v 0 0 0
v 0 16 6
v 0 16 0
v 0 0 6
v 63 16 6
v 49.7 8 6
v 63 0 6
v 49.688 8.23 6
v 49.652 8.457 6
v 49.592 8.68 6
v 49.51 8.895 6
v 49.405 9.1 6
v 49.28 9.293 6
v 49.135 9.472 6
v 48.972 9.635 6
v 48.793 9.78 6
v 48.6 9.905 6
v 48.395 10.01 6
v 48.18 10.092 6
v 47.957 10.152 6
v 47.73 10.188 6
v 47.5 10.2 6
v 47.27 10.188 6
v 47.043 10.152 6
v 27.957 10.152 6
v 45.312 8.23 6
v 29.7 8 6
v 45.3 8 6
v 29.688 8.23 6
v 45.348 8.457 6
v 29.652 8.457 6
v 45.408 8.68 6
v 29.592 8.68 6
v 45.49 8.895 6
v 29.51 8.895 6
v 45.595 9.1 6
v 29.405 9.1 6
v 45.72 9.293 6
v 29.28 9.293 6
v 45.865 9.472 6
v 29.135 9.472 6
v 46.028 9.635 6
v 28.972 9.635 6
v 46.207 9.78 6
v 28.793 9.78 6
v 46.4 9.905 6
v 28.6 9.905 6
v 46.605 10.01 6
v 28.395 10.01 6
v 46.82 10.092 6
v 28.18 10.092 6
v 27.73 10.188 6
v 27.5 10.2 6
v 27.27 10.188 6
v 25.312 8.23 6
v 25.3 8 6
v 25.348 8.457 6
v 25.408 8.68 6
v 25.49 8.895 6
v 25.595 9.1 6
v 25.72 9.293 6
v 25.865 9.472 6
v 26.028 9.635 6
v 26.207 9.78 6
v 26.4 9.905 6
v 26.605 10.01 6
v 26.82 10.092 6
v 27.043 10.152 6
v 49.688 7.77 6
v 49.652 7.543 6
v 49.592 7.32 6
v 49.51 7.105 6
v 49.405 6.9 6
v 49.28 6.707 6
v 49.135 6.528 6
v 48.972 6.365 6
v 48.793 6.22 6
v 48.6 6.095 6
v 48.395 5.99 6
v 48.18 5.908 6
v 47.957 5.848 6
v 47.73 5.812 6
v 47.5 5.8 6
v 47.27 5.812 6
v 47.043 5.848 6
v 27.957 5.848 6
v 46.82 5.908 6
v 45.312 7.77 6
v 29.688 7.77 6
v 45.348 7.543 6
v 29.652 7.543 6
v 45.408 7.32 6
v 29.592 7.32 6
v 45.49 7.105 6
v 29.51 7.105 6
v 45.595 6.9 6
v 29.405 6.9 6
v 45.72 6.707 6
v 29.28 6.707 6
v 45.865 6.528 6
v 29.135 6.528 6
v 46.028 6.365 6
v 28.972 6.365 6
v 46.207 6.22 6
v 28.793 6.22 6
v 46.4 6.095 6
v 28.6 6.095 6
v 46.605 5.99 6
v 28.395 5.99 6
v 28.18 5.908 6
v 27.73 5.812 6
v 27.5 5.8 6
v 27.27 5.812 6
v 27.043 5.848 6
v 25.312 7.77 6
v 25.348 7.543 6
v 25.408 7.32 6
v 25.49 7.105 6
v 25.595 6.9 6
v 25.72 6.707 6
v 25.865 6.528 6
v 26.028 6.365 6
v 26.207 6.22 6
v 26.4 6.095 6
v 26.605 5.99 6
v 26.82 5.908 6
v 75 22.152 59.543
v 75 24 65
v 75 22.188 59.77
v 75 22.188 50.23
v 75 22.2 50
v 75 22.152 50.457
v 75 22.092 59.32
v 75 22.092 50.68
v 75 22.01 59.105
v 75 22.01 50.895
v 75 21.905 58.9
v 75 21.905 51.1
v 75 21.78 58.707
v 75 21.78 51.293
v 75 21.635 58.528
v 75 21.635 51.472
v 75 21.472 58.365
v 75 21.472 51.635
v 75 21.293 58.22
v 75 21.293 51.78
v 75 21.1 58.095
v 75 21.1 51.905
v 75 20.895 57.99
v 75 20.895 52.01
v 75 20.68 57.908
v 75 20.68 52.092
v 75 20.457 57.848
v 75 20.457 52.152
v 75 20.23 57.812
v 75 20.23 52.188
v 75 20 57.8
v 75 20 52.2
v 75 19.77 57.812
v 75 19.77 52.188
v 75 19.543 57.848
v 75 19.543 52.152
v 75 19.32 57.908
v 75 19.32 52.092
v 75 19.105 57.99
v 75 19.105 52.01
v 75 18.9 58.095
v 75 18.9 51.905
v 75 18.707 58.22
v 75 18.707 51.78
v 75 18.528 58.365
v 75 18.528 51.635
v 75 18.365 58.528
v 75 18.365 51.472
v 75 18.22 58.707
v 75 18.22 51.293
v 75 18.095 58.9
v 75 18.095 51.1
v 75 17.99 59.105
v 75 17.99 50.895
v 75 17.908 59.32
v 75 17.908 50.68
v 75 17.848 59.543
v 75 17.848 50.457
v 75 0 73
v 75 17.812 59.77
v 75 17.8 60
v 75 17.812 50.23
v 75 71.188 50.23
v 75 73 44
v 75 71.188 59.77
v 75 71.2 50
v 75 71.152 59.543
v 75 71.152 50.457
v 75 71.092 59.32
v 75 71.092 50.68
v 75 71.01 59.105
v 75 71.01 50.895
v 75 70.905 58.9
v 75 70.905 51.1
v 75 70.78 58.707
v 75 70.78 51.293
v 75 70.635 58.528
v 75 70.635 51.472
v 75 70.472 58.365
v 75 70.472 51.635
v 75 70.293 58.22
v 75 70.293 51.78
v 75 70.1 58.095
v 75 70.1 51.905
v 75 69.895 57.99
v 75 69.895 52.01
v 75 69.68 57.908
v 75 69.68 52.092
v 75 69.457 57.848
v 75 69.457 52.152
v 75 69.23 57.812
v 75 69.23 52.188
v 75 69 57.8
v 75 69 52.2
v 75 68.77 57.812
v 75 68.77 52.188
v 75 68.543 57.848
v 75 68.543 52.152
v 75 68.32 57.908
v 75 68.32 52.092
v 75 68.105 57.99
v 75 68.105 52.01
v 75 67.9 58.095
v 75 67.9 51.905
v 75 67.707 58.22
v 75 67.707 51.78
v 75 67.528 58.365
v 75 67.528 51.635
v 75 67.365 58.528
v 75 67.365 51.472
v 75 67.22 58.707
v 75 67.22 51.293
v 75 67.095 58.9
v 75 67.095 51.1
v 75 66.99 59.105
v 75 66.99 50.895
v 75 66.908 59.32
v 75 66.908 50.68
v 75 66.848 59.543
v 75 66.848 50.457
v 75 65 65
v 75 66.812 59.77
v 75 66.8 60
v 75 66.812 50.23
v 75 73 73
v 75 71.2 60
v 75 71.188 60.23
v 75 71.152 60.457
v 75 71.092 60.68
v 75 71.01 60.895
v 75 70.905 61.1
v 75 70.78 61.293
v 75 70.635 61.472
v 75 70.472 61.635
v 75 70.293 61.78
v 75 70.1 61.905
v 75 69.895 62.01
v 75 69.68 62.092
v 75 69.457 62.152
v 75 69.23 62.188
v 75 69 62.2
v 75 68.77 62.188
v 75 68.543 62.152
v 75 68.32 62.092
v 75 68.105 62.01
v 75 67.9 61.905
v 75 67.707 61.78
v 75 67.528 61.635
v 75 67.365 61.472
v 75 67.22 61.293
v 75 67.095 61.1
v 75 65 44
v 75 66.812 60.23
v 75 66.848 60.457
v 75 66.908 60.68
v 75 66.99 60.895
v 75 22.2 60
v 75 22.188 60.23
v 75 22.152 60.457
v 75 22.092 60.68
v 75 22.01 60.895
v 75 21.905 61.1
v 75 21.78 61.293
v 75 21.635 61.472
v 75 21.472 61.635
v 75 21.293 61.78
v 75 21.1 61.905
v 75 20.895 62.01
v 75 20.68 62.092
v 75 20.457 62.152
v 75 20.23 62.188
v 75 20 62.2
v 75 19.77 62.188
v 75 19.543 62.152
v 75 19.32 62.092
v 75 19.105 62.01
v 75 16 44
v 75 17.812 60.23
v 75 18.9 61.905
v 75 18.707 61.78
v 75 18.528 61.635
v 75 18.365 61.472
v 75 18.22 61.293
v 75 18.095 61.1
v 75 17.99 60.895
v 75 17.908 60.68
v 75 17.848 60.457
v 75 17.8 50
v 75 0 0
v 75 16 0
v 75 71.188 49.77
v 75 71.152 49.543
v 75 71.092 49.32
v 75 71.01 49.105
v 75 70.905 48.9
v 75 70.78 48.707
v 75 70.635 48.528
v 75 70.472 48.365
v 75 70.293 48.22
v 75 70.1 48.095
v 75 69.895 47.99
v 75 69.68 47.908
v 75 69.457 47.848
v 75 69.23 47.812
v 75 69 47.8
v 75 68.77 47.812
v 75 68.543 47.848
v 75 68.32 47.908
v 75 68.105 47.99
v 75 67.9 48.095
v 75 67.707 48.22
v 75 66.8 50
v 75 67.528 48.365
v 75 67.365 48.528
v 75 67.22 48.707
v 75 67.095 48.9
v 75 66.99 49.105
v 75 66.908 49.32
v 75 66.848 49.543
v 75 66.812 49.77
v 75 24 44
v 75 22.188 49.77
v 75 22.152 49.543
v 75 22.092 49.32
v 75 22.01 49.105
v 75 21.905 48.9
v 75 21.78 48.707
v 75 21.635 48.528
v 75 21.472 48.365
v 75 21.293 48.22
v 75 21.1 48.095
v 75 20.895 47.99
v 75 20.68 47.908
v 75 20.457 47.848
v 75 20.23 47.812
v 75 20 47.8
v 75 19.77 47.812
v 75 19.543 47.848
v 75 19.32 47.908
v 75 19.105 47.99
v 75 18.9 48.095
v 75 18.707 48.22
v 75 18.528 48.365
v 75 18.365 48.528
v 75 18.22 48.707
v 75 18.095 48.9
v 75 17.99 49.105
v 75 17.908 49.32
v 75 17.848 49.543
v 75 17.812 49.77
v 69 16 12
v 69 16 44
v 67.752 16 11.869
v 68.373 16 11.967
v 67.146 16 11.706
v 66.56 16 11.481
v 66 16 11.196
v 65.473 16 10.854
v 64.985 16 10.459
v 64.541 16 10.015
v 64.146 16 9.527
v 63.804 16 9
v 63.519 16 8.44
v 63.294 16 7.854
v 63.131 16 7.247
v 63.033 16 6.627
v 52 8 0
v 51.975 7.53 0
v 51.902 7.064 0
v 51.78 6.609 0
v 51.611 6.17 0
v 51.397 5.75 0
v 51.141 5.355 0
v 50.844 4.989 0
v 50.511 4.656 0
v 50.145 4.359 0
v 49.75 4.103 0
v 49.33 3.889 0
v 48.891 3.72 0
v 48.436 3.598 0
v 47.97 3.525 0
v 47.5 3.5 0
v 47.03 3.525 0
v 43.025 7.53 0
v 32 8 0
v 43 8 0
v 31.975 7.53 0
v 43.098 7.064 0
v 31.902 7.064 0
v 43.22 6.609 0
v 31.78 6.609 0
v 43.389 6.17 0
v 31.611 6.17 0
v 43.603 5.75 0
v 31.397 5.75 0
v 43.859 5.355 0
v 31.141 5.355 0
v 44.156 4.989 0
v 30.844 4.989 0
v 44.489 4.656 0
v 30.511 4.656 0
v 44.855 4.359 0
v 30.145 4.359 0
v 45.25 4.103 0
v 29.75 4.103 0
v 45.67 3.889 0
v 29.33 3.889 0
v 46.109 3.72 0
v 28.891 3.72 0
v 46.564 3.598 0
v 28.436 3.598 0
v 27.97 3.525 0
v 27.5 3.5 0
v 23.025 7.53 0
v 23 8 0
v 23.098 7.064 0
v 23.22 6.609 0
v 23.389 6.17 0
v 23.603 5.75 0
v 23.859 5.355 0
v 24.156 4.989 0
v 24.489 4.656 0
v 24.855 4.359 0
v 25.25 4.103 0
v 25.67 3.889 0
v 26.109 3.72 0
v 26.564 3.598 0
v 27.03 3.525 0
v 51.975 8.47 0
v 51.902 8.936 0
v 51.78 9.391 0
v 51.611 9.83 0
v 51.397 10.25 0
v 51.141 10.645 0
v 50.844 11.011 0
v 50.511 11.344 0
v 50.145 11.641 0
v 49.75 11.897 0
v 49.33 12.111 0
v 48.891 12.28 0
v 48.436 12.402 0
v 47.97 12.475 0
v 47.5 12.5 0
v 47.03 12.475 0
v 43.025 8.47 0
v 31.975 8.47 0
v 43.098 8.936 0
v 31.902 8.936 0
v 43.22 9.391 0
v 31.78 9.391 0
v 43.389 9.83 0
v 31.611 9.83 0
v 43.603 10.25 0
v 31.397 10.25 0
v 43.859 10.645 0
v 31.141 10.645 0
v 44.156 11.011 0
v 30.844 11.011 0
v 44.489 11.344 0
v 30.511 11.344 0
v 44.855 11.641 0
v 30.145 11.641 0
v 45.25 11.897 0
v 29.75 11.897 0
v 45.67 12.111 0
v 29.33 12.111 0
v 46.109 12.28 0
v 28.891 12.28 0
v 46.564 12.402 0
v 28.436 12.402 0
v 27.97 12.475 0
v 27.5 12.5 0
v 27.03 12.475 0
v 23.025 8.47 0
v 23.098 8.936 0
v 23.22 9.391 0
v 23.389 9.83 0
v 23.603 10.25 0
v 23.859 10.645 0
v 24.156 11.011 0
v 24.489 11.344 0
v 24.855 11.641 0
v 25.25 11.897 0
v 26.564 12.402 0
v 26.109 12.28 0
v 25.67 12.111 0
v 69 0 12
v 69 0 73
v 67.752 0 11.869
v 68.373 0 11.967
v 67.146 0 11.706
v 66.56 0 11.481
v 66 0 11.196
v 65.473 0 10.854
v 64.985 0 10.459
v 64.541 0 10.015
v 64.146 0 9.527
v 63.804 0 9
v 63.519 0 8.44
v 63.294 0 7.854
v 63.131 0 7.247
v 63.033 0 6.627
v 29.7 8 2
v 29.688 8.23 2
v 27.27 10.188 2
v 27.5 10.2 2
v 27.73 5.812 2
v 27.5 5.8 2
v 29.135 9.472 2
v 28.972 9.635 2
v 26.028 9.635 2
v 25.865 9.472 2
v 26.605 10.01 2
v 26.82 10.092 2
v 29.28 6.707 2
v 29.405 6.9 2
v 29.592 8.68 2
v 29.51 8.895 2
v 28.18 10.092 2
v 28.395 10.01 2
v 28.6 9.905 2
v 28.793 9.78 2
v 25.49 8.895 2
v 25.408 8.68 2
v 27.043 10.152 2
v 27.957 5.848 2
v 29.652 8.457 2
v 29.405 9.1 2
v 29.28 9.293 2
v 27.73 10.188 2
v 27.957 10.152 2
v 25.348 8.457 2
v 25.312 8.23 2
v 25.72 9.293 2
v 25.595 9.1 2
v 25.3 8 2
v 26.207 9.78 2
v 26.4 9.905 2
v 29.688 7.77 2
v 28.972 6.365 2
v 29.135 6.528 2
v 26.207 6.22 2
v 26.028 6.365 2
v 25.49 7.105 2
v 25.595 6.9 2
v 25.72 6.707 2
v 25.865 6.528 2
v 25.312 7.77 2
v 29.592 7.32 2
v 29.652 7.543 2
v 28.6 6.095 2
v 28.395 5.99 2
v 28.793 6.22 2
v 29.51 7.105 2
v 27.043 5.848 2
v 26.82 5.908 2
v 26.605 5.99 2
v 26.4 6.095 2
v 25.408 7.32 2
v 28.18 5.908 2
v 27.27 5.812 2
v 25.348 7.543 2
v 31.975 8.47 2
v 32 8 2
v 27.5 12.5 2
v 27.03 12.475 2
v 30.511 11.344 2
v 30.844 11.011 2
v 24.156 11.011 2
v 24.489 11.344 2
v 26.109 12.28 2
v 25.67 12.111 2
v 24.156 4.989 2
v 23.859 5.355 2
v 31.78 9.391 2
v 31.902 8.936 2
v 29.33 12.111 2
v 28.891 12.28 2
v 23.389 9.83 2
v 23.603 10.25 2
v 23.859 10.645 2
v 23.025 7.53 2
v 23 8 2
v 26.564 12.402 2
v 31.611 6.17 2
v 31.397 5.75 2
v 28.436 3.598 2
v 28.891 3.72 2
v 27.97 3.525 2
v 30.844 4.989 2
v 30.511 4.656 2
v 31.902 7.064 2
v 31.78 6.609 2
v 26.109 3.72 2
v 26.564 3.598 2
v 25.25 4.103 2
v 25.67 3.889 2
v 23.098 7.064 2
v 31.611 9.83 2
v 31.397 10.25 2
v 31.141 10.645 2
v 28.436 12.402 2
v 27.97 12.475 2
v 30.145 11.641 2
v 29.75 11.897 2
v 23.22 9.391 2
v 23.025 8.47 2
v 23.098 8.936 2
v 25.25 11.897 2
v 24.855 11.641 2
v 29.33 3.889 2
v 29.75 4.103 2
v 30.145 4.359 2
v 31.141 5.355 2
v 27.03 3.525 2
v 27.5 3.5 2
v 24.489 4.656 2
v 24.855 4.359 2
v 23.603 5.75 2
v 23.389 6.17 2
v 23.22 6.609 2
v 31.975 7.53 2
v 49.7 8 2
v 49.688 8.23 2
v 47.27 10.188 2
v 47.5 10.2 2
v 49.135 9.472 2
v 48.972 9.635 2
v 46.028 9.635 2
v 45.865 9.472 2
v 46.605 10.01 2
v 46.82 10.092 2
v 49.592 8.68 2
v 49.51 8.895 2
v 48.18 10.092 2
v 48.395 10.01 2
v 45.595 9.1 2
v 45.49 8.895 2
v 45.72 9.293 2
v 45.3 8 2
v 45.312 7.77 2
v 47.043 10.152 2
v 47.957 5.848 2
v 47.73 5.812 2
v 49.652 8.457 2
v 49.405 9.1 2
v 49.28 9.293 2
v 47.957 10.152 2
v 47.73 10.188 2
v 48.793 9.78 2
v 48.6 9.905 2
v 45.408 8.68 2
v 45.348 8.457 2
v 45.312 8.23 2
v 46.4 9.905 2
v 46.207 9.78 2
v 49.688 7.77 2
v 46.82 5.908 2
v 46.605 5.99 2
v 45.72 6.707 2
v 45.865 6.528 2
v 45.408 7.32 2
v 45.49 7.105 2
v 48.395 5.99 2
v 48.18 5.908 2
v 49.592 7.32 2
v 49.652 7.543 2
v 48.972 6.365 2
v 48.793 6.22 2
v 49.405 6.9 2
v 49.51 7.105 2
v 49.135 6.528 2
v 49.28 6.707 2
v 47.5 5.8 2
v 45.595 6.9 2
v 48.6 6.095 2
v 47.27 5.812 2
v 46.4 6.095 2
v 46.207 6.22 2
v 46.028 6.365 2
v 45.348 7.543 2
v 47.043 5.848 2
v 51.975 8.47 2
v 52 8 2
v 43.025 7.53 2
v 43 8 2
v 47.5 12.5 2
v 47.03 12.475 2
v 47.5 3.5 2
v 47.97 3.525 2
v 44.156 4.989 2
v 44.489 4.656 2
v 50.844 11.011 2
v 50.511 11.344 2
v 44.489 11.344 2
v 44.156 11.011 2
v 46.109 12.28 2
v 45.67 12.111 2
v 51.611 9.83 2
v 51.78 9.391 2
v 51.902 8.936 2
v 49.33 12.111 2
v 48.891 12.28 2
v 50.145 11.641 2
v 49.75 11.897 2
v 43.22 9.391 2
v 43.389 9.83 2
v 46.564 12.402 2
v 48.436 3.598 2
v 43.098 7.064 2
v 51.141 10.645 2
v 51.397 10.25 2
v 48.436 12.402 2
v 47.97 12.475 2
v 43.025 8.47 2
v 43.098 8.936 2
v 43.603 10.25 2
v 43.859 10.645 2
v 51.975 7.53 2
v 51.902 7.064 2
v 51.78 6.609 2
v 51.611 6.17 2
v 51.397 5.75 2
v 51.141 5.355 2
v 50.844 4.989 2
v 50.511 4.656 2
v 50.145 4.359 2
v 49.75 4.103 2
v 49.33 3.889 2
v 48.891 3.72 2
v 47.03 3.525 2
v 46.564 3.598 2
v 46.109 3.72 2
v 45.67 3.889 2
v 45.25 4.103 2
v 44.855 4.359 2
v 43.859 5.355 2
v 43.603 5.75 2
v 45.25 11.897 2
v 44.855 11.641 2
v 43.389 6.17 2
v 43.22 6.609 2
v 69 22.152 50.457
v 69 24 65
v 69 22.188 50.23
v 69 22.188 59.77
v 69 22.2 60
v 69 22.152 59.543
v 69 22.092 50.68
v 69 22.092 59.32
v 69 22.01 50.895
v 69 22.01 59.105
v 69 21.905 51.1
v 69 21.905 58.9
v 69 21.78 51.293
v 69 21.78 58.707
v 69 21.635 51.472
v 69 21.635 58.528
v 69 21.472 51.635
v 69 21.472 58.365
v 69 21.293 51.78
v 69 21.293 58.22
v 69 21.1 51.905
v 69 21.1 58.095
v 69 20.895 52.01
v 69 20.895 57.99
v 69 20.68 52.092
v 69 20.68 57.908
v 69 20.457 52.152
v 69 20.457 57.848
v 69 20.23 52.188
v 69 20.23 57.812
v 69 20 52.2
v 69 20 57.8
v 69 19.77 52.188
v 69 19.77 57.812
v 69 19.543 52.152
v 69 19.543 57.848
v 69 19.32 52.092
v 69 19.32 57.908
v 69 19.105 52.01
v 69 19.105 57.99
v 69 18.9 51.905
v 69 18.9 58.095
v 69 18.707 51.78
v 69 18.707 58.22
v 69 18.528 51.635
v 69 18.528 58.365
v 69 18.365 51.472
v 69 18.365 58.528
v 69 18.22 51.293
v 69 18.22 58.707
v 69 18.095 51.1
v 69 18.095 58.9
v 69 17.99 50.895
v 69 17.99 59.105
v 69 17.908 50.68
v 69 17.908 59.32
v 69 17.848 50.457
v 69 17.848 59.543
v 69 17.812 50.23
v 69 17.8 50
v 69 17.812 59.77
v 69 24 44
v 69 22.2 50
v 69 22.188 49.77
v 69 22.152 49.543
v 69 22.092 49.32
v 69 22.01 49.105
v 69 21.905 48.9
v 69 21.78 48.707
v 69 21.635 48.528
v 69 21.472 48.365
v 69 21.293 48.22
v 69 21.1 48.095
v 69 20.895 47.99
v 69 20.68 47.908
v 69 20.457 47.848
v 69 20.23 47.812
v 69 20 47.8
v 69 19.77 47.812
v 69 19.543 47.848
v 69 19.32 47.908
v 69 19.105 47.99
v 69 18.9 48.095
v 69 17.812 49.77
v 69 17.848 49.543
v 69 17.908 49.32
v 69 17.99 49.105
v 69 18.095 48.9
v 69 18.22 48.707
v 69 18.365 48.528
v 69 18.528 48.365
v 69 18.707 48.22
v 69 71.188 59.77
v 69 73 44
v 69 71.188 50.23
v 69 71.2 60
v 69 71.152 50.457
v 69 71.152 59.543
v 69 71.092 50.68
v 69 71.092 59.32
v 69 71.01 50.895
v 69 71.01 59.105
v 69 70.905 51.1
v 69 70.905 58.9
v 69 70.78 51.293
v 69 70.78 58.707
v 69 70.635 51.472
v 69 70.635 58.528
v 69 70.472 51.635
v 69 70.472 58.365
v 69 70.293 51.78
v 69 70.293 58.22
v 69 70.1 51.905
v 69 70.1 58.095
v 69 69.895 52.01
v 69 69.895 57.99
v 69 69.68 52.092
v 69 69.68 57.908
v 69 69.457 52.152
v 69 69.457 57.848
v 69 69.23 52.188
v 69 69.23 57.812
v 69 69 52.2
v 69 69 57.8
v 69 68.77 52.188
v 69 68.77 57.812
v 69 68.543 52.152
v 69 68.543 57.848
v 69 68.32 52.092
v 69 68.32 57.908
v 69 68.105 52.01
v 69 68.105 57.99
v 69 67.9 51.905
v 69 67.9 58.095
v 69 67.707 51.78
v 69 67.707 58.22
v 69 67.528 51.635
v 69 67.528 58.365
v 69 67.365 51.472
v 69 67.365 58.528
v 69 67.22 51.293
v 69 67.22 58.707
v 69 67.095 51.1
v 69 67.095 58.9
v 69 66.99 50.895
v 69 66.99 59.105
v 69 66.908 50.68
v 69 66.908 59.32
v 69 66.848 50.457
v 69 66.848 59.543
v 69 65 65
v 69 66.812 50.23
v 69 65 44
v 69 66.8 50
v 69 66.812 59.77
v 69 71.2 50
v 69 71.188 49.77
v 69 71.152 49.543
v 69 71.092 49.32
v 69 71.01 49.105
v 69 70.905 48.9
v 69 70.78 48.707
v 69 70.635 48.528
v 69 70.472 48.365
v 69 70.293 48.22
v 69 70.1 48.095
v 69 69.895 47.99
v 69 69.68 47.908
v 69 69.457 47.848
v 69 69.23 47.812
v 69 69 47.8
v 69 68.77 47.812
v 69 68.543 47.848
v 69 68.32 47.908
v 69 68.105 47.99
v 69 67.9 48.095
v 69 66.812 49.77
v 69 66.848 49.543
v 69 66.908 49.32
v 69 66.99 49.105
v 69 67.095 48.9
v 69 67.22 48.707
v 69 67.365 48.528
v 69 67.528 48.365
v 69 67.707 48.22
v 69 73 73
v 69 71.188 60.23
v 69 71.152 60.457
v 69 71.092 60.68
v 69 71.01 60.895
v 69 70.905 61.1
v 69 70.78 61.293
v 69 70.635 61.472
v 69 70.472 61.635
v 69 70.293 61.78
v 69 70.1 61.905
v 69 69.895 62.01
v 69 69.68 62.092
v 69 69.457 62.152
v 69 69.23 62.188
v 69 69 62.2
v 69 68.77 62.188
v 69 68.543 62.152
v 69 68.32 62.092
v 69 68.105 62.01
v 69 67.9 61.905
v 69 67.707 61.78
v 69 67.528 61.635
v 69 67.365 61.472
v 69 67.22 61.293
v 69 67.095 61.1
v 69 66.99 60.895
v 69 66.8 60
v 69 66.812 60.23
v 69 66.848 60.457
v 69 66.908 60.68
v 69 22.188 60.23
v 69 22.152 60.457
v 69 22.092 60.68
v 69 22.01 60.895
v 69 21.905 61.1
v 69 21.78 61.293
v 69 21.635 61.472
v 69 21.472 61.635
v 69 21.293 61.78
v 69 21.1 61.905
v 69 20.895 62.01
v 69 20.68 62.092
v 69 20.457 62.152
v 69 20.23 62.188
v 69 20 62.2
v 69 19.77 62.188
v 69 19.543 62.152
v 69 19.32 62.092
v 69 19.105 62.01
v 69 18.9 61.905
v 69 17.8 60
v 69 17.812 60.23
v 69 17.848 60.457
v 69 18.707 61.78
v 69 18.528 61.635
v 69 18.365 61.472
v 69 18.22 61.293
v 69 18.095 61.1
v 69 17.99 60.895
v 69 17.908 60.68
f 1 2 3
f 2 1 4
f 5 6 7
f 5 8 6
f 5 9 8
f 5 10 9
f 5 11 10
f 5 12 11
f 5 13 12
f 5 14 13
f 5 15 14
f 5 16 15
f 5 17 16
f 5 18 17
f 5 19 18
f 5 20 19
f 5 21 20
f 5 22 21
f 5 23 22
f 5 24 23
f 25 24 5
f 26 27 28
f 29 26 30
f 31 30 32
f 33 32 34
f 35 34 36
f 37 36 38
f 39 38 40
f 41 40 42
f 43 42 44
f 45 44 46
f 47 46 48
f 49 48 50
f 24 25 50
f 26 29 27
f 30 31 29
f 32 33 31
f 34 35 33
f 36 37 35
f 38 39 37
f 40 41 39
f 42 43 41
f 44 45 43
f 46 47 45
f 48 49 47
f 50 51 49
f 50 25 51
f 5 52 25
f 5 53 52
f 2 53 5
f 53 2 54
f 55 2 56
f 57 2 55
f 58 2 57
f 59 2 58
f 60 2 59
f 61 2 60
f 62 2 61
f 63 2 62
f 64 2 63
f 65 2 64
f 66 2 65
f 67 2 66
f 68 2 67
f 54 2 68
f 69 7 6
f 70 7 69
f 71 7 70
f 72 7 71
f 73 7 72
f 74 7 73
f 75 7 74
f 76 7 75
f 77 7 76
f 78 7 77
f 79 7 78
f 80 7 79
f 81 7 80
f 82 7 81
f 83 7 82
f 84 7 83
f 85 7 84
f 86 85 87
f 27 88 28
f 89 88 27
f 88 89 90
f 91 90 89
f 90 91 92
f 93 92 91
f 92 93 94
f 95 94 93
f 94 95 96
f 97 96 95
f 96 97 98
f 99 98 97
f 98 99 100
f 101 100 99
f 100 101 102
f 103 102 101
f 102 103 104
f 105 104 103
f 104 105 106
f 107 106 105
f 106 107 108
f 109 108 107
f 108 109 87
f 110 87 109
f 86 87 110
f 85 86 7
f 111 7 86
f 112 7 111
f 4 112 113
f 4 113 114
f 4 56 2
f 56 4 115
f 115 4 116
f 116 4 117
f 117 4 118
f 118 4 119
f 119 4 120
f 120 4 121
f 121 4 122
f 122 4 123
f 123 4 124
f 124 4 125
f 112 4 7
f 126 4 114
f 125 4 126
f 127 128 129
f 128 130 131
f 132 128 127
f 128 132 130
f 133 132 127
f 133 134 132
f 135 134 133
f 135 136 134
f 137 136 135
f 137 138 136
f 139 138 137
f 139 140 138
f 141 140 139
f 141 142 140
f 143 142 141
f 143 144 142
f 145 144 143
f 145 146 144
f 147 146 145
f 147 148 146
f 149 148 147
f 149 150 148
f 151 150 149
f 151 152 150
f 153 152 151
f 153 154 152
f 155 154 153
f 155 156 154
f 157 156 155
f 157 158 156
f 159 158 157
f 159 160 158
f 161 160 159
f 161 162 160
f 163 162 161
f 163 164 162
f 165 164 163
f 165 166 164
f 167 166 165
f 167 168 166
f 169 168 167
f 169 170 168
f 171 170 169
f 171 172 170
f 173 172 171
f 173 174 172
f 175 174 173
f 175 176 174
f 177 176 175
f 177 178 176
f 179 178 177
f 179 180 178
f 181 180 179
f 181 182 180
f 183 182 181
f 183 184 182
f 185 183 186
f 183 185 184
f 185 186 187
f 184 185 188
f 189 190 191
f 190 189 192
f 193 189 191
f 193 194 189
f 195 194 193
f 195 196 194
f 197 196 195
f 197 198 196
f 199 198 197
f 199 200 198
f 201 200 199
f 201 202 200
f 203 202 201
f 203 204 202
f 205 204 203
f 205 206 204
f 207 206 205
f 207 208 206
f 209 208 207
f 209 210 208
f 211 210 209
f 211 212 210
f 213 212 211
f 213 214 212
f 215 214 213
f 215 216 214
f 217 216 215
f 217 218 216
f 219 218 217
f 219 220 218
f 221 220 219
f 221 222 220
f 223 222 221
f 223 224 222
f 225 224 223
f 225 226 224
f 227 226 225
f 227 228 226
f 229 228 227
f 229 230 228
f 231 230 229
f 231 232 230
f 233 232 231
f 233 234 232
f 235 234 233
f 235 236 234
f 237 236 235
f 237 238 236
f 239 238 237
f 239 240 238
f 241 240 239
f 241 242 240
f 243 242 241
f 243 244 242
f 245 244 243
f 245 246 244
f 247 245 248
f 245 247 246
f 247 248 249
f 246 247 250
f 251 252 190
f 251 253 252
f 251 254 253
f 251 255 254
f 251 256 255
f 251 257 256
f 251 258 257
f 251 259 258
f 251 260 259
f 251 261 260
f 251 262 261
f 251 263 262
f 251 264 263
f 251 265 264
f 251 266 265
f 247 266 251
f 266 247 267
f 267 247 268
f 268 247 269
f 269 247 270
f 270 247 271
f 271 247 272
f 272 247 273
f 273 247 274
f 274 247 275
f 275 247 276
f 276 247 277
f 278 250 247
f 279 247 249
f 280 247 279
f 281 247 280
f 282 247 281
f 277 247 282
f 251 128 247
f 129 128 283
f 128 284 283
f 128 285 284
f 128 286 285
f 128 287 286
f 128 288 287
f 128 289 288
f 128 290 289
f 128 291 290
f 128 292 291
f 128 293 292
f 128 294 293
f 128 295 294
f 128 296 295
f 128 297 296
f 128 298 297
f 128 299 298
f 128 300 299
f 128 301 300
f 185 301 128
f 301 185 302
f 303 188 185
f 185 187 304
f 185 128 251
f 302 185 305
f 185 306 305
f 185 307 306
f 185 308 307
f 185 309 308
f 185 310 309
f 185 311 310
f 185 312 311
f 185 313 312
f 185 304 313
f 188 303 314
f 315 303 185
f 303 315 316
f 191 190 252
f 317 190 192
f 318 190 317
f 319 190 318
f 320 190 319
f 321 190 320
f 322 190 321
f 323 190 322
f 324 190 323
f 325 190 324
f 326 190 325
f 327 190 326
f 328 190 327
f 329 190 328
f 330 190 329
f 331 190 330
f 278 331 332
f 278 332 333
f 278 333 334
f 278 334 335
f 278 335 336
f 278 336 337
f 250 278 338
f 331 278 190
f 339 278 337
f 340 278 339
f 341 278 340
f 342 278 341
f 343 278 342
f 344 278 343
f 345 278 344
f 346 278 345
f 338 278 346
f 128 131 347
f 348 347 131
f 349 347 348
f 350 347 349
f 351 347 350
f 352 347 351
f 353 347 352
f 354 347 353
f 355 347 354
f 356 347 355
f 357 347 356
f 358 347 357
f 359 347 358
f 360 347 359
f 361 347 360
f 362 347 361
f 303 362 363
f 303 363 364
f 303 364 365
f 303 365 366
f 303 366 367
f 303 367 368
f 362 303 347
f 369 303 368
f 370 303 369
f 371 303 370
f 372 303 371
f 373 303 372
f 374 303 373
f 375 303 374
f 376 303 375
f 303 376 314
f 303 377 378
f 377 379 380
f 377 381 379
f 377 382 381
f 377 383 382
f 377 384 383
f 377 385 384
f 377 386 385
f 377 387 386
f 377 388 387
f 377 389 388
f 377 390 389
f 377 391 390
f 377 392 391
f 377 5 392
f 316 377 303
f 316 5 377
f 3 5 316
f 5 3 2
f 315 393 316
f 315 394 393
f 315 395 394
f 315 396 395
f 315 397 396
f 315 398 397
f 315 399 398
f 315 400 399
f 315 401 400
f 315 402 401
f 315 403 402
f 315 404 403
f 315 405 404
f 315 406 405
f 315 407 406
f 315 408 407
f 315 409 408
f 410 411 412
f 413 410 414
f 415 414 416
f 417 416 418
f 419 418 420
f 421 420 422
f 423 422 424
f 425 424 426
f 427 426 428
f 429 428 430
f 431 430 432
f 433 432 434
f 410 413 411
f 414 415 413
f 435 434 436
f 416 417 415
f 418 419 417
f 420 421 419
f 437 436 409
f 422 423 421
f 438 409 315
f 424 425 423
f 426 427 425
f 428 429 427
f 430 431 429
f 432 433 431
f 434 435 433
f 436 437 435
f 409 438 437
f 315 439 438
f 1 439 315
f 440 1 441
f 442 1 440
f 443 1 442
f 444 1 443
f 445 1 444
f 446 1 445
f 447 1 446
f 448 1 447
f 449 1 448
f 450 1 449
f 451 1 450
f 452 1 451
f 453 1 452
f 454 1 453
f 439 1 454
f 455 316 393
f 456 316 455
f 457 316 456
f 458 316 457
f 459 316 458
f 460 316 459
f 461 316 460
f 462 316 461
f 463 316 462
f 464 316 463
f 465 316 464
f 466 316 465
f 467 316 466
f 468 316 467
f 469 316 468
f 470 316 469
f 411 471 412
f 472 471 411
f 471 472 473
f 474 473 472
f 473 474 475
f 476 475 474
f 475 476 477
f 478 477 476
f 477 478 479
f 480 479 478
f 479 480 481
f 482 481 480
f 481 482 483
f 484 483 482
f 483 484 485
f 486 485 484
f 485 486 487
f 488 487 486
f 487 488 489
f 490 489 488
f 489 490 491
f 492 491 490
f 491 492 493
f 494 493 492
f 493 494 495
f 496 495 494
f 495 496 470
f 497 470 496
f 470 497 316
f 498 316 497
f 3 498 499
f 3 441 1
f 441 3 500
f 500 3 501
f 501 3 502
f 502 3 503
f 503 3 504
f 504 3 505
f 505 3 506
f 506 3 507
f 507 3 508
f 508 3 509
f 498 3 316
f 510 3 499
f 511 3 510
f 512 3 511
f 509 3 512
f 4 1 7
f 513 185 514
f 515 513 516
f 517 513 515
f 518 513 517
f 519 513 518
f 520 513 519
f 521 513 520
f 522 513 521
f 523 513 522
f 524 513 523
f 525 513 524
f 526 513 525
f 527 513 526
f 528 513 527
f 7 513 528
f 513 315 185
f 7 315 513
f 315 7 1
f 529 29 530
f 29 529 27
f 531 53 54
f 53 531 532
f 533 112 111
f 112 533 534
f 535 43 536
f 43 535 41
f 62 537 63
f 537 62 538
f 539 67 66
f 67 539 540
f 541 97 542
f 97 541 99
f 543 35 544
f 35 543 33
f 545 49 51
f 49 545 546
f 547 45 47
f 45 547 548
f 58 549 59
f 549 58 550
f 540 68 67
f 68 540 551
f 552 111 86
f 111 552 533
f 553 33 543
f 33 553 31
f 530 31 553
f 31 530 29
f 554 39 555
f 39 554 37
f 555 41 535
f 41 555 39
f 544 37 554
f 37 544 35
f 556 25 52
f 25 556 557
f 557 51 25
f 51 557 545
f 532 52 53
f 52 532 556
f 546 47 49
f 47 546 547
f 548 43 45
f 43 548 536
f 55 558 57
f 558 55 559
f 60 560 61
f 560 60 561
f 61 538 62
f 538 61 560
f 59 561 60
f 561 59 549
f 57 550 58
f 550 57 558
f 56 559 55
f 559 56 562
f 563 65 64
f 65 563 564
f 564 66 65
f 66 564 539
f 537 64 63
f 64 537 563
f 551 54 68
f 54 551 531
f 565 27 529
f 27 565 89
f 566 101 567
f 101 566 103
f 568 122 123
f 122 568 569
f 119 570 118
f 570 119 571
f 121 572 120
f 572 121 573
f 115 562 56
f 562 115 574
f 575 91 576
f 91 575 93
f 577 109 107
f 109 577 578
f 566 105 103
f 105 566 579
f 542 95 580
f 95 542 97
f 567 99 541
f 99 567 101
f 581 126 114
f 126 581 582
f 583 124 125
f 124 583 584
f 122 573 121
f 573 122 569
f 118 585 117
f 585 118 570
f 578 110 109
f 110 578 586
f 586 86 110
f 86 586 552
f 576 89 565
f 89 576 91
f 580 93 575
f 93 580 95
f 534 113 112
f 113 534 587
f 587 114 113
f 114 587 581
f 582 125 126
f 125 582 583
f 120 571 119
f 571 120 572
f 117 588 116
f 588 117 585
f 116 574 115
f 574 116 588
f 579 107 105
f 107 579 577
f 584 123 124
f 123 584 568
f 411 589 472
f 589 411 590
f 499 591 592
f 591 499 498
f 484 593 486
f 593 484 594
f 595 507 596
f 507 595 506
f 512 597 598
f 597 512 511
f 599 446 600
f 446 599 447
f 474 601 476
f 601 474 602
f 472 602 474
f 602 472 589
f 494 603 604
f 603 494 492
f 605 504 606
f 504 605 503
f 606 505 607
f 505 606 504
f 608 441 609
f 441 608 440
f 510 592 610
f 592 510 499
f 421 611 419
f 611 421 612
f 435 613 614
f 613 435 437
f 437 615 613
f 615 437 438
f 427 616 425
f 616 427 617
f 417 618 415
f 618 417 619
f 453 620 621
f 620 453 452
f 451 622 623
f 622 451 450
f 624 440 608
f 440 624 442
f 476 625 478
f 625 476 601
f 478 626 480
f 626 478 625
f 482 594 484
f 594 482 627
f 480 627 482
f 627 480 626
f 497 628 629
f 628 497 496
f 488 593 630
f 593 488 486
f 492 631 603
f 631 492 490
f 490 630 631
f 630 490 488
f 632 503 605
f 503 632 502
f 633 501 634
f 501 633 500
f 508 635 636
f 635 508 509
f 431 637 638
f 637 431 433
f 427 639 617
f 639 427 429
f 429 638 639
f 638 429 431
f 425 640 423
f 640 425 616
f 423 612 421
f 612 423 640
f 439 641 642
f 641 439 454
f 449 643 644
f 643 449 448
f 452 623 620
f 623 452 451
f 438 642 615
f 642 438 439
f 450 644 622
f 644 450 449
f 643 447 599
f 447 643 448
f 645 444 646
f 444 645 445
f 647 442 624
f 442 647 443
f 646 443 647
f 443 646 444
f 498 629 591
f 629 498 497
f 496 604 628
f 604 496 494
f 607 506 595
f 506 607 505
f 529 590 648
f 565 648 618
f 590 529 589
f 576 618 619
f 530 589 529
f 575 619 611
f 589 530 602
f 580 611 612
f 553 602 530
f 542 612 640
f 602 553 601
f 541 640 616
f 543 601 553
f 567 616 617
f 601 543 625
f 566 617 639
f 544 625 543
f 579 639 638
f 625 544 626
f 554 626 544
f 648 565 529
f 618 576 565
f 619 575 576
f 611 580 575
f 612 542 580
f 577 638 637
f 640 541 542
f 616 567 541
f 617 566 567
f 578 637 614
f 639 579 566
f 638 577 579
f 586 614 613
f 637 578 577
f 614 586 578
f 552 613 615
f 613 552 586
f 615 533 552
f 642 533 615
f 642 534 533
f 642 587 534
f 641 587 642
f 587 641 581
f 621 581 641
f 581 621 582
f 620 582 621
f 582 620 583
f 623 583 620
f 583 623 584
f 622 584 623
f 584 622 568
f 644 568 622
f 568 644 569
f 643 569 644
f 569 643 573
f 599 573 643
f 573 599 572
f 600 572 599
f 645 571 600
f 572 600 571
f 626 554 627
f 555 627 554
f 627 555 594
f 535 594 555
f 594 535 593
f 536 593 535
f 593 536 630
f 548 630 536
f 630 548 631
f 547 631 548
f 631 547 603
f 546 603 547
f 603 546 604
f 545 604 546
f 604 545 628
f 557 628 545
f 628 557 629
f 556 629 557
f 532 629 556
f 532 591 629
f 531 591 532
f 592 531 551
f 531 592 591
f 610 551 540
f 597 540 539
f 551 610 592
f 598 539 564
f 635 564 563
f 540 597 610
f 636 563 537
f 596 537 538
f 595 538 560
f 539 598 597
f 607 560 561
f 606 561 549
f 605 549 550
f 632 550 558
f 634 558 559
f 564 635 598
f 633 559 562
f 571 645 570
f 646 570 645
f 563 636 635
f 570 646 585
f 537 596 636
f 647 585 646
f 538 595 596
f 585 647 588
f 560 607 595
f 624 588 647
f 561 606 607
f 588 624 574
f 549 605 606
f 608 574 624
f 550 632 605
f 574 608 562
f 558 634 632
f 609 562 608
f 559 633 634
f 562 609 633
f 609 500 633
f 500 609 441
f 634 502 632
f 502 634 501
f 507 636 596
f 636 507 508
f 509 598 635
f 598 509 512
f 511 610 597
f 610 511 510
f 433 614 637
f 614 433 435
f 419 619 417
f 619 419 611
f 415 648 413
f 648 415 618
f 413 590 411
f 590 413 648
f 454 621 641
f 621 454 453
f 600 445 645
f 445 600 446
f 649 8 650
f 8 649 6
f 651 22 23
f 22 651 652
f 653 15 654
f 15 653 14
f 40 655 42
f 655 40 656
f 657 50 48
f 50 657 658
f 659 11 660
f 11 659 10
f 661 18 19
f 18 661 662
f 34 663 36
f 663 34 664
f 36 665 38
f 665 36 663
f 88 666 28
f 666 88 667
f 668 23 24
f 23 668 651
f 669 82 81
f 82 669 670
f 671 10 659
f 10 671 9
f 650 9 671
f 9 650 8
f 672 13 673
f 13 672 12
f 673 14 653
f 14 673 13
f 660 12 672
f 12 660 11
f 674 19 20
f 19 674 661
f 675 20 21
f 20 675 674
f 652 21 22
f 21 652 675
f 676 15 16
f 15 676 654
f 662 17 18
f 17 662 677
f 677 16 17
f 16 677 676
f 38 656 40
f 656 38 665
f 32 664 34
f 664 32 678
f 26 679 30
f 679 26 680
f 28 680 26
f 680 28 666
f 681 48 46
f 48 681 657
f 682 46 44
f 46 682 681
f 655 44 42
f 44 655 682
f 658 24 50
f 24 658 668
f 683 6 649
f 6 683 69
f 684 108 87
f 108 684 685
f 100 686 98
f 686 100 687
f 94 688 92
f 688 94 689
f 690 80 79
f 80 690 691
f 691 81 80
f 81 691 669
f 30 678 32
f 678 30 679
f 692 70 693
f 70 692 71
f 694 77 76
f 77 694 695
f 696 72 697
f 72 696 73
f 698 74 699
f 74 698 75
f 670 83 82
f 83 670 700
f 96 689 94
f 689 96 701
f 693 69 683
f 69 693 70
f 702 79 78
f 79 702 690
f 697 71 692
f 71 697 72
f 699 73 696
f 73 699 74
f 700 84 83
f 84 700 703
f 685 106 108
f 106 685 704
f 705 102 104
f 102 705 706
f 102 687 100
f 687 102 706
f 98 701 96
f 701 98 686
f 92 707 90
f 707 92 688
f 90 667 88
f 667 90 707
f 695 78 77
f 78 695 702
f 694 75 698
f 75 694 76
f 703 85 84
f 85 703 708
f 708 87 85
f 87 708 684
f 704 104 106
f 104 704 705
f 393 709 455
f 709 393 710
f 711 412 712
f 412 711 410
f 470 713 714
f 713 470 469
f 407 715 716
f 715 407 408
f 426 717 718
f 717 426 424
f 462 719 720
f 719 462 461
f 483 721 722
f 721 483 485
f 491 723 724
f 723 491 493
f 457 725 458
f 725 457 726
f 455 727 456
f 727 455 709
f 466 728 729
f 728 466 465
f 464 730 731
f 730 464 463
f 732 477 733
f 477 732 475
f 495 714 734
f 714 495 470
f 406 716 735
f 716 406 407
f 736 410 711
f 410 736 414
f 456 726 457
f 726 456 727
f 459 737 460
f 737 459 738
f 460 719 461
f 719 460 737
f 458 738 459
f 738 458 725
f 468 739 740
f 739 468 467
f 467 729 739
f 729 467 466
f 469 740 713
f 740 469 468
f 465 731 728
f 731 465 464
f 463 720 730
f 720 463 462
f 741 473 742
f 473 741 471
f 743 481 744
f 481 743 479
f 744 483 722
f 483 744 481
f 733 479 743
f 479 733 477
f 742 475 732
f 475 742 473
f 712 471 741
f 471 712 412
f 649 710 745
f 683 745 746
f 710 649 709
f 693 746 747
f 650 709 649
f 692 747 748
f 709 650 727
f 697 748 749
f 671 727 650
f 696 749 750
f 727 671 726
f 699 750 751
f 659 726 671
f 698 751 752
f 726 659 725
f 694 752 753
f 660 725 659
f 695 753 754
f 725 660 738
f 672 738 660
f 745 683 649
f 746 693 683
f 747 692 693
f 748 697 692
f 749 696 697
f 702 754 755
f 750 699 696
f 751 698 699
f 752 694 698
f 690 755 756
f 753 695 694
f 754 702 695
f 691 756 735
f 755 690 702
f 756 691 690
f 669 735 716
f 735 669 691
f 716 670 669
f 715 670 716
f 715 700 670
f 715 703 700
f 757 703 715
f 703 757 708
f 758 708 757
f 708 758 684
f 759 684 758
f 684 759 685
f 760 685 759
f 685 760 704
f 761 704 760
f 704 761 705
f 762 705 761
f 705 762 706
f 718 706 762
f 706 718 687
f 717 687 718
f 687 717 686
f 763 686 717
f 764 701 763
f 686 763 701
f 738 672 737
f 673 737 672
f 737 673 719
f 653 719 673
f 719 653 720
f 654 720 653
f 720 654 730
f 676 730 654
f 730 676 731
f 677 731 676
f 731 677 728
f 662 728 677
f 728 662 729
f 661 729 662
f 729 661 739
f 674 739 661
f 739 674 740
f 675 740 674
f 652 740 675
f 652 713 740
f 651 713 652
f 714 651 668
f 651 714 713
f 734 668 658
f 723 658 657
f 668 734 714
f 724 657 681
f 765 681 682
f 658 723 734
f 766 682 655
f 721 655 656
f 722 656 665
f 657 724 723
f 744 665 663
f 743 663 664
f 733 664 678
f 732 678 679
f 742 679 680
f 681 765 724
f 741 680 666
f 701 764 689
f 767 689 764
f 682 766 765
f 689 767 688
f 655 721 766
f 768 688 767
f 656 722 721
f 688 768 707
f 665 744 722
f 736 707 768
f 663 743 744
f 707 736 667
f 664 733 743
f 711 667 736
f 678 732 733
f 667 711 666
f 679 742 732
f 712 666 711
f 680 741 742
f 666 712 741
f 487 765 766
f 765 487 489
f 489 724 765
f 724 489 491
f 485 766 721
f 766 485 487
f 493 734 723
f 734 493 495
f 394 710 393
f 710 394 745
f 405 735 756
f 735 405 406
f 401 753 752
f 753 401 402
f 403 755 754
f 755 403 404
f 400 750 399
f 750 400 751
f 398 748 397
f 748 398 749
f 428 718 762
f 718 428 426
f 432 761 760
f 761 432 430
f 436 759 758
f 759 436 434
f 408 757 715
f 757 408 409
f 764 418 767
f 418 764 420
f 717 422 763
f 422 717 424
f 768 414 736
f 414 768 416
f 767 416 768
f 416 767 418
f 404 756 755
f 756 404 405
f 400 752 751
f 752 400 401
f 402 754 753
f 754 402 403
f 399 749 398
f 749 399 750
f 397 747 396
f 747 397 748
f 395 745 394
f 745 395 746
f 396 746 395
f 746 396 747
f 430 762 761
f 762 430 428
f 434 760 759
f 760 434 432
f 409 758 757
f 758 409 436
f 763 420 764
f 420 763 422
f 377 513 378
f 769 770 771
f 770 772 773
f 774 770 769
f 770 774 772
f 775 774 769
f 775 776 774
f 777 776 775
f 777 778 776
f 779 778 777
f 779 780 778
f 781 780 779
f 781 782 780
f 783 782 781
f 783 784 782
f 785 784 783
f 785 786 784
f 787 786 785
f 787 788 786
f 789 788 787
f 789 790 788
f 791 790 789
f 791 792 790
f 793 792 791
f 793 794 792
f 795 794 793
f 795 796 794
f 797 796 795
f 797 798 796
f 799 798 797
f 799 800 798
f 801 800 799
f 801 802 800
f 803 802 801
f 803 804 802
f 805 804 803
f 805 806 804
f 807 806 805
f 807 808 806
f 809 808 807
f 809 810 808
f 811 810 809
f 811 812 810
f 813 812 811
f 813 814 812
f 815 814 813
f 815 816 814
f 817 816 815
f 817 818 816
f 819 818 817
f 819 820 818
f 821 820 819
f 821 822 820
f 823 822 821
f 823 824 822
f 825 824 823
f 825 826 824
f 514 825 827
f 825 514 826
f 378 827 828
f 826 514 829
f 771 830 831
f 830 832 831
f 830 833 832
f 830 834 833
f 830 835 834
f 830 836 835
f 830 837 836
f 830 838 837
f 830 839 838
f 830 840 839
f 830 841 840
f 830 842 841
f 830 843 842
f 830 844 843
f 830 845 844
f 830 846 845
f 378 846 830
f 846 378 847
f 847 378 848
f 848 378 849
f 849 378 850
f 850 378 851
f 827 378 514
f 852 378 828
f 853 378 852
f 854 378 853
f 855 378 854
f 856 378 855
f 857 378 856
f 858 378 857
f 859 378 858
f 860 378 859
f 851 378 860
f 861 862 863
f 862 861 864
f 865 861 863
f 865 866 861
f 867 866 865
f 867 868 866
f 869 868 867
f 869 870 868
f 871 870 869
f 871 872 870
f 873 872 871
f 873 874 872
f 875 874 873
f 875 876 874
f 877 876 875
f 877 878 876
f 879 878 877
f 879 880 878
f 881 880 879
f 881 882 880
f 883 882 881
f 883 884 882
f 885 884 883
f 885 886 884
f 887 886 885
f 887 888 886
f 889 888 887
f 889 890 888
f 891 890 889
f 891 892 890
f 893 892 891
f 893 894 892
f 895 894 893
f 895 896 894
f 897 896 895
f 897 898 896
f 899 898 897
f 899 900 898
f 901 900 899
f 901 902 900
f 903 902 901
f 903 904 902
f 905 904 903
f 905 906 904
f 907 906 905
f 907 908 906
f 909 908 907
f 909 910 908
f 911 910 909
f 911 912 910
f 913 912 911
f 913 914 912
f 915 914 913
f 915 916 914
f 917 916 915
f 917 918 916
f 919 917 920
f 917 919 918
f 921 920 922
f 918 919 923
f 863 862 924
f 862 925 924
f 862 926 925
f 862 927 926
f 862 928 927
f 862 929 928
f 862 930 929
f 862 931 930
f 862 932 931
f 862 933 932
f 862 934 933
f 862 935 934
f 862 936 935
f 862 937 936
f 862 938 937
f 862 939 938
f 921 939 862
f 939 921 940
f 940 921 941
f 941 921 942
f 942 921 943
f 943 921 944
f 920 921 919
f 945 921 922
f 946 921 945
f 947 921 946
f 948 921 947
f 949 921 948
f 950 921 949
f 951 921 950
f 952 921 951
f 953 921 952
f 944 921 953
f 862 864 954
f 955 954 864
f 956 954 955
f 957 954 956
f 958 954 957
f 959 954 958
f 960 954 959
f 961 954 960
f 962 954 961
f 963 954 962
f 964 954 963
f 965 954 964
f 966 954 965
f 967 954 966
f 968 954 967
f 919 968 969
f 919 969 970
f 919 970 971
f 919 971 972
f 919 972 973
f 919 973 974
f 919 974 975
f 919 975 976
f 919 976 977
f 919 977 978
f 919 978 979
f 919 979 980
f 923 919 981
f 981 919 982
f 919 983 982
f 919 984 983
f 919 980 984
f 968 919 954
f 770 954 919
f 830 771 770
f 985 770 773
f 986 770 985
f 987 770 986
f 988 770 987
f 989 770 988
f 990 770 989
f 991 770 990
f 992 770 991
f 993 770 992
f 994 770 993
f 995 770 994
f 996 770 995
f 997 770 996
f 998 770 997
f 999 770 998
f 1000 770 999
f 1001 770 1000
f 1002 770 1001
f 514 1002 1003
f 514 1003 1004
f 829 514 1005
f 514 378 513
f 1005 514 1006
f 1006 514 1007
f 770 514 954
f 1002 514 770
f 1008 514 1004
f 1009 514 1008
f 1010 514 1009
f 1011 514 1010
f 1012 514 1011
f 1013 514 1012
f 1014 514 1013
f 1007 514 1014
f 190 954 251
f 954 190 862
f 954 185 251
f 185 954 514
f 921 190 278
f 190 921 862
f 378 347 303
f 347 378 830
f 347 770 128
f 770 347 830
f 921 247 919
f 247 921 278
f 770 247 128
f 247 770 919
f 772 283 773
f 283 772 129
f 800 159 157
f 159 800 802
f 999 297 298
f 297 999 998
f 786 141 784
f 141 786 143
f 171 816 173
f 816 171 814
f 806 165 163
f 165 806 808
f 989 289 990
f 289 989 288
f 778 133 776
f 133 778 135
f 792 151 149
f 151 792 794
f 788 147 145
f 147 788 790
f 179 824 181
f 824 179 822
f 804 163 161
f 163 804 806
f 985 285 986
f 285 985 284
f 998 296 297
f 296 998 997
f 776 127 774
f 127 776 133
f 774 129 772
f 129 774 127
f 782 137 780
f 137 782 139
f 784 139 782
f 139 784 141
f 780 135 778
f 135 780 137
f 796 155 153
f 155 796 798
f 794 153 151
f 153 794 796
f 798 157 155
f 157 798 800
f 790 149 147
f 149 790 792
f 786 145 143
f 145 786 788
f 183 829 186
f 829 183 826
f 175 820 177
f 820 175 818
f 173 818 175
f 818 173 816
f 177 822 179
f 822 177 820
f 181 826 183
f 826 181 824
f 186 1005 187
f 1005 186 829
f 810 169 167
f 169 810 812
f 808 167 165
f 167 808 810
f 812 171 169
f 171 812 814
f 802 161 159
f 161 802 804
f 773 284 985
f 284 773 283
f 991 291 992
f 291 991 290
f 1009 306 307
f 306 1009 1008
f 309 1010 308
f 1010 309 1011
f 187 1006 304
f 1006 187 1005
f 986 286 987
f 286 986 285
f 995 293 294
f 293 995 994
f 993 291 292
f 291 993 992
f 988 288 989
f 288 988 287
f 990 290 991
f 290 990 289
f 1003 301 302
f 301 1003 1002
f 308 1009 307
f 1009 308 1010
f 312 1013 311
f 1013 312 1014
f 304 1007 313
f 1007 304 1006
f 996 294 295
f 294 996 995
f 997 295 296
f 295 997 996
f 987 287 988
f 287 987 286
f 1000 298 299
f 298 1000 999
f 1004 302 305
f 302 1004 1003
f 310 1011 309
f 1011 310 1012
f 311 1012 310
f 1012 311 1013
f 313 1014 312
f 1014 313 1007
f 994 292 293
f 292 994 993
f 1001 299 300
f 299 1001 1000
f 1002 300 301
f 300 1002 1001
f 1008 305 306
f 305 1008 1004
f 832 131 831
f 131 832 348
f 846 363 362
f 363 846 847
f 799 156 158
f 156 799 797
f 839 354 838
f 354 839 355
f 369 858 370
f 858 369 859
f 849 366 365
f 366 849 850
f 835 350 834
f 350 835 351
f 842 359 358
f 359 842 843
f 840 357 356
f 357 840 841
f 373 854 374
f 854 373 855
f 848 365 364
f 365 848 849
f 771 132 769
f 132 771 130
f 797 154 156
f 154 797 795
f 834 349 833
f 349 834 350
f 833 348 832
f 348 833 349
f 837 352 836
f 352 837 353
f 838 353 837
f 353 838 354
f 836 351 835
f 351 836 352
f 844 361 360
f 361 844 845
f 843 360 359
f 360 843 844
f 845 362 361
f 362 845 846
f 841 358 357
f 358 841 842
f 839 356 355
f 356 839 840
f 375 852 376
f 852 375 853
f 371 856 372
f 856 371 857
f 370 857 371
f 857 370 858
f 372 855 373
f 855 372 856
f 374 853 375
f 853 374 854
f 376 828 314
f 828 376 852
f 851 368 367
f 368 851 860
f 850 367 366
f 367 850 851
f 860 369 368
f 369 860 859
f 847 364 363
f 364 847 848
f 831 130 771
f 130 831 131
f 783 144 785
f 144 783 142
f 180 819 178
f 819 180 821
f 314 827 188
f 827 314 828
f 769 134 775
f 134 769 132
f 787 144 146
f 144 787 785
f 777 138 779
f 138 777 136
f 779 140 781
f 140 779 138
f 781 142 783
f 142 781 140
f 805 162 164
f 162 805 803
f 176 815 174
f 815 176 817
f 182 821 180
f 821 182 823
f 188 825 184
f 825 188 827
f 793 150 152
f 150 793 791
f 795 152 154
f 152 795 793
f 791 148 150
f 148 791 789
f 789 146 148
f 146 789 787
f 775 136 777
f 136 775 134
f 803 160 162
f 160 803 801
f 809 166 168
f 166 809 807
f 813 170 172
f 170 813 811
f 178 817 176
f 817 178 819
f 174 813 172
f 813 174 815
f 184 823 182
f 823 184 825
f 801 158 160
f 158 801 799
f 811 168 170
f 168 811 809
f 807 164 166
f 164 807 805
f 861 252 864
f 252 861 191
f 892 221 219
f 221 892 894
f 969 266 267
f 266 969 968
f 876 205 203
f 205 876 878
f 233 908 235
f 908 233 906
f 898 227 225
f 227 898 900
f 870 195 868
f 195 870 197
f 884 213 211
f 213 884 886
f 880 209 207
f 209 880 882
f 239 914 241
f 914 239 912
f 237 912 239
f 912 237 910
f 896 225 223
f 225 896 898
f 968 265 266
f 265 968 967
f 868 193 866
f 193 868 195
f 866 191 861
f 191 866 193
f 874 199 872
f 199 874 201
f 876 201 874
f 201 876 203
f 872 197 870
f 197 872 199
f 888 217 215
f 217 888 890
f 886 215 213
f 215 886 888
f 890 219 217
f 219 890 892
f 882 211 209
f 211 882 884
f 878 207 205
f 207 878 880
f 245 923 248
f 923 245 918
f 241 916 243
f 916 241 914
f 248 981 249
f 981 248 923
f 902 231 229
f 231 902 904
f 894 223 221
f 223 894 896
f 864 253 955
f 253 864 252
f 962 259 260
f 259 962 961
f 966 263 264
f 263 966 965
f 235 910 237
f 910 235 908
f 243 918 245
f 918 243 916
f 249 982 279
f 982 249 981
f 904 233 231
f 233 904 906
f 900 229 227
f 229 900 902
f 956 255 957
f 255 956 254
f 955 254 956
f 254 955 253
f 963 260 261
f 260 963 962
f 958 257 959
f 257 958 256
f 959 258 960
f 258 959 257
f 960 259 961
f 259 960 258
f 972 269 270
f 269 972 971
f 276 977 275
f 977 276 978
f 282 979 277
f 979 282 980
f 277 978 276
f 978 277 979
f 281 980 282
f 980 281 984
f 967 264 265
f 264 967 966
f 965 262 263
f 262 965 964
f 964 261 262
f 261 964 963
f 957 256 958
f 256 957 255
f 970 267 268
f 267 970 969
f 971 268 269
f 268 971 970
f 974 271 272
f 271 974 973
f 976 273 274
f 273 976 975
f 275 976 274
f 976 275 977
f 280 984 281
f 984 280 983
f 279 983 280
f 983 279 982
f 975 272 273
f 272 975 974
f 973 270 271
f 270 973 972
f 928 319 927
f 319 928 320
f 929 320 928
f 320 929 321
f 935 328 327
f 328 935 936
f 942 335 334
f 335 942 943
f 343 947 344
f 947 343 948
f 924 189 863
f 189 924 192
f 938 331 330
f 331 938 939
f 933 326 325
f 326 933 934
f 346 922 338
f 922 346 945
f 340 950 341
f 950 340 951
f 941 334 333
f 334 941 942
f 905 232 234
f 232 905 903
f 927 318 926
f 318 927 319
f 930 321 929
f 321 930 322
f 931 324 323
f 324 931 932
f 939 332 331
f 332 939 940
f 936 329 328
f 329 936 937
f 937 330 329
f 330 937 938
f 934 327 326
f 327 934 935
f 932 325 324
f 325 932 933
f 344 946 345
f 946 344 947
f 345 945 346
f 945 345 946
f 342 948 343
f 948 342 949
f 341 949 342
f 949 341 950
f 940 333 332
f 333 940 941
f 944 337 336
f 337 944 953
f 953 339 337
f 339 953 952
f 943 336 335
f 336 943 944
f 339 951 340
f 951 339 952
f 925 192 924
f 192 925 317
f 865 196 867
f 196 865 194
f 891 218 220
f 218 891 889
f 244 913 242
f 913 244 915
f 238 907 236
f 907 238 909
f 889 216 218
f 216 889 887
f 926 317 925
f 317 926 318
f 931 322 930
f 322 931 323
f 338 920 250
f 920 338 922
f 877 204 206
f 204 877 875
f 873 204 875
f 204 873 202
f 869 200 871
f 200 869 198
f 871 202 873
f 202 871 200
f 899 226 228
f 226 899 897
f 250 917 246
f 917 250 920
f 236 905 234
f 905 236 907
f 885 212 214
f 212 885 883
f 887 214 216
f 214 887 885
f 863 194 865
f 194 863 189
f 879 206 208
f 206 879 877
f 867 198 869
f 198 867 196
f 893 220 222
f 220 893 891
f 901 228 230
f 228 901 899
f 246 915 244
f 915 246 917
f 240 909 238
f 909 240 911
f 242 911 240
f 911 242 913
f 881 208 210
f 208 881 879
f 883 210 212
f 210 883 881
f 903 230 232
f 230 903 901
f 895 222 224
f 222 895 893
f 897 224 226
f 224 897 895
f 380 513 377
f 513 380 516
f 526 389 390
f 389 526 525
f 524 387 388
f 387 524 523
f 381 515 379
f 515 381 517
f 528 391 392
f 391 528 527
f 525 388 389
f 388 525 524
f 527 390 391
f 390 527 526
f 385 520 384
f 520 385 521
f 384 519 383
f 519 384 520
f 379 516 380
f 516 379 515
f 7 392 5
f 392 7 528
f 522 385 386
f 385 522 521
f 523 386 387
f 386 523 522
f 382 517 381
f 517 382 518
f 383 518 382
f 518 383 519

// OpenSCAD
$fn = 60;

//--------------------------------------------------------

	  w = 75;
	  b = 16;
	  difference() {
			cube([w, b, 6]);
			translate([w/2 - 20 / 2, b/2, 0]) cylinder(h=6, d=4.4);
			translate([w/2 - 20 / 2, b/2, 0]) cylinder(h=2, d=9);
			
			translate([w/2 + 20 / 2, b/2, 0]) cylinder(h=6, d=4.4);
			translate([w/2 + 20 / 2, b/2, 0]) cylinder(h=2, d=9);
	  }
	  
	  translate([w - 6, 0, 0]) cube([6, b, 6 + 50-11+29-1]);
	  translate([w - 6, b/2, 6]) rotate([90, 0, 0]) cylinder(h = b, d = 12, center = true);

translate([75, 0+16, 6 + 50+29-11-1]) rotate([-90, 0, 90]) difference() {
	  cube([41+16, 21+8, 6]);
	  translate([8, 8, 0]) cube([41, 21, 6]);
	  translate([4, 8+5, 0]) cylinder(h=6, d=4.4);
	  translate([4, 8++5+10, 0]) cylinder(h=6, d=4.4);
	  translate([41 + 8 + 4, 8+5, 0]) cylinder(h=6, d=4.4);
	  translate([41 + 8 + 4, 8+5+10, 0]) cylinder(h=6, d=4.4);
}
